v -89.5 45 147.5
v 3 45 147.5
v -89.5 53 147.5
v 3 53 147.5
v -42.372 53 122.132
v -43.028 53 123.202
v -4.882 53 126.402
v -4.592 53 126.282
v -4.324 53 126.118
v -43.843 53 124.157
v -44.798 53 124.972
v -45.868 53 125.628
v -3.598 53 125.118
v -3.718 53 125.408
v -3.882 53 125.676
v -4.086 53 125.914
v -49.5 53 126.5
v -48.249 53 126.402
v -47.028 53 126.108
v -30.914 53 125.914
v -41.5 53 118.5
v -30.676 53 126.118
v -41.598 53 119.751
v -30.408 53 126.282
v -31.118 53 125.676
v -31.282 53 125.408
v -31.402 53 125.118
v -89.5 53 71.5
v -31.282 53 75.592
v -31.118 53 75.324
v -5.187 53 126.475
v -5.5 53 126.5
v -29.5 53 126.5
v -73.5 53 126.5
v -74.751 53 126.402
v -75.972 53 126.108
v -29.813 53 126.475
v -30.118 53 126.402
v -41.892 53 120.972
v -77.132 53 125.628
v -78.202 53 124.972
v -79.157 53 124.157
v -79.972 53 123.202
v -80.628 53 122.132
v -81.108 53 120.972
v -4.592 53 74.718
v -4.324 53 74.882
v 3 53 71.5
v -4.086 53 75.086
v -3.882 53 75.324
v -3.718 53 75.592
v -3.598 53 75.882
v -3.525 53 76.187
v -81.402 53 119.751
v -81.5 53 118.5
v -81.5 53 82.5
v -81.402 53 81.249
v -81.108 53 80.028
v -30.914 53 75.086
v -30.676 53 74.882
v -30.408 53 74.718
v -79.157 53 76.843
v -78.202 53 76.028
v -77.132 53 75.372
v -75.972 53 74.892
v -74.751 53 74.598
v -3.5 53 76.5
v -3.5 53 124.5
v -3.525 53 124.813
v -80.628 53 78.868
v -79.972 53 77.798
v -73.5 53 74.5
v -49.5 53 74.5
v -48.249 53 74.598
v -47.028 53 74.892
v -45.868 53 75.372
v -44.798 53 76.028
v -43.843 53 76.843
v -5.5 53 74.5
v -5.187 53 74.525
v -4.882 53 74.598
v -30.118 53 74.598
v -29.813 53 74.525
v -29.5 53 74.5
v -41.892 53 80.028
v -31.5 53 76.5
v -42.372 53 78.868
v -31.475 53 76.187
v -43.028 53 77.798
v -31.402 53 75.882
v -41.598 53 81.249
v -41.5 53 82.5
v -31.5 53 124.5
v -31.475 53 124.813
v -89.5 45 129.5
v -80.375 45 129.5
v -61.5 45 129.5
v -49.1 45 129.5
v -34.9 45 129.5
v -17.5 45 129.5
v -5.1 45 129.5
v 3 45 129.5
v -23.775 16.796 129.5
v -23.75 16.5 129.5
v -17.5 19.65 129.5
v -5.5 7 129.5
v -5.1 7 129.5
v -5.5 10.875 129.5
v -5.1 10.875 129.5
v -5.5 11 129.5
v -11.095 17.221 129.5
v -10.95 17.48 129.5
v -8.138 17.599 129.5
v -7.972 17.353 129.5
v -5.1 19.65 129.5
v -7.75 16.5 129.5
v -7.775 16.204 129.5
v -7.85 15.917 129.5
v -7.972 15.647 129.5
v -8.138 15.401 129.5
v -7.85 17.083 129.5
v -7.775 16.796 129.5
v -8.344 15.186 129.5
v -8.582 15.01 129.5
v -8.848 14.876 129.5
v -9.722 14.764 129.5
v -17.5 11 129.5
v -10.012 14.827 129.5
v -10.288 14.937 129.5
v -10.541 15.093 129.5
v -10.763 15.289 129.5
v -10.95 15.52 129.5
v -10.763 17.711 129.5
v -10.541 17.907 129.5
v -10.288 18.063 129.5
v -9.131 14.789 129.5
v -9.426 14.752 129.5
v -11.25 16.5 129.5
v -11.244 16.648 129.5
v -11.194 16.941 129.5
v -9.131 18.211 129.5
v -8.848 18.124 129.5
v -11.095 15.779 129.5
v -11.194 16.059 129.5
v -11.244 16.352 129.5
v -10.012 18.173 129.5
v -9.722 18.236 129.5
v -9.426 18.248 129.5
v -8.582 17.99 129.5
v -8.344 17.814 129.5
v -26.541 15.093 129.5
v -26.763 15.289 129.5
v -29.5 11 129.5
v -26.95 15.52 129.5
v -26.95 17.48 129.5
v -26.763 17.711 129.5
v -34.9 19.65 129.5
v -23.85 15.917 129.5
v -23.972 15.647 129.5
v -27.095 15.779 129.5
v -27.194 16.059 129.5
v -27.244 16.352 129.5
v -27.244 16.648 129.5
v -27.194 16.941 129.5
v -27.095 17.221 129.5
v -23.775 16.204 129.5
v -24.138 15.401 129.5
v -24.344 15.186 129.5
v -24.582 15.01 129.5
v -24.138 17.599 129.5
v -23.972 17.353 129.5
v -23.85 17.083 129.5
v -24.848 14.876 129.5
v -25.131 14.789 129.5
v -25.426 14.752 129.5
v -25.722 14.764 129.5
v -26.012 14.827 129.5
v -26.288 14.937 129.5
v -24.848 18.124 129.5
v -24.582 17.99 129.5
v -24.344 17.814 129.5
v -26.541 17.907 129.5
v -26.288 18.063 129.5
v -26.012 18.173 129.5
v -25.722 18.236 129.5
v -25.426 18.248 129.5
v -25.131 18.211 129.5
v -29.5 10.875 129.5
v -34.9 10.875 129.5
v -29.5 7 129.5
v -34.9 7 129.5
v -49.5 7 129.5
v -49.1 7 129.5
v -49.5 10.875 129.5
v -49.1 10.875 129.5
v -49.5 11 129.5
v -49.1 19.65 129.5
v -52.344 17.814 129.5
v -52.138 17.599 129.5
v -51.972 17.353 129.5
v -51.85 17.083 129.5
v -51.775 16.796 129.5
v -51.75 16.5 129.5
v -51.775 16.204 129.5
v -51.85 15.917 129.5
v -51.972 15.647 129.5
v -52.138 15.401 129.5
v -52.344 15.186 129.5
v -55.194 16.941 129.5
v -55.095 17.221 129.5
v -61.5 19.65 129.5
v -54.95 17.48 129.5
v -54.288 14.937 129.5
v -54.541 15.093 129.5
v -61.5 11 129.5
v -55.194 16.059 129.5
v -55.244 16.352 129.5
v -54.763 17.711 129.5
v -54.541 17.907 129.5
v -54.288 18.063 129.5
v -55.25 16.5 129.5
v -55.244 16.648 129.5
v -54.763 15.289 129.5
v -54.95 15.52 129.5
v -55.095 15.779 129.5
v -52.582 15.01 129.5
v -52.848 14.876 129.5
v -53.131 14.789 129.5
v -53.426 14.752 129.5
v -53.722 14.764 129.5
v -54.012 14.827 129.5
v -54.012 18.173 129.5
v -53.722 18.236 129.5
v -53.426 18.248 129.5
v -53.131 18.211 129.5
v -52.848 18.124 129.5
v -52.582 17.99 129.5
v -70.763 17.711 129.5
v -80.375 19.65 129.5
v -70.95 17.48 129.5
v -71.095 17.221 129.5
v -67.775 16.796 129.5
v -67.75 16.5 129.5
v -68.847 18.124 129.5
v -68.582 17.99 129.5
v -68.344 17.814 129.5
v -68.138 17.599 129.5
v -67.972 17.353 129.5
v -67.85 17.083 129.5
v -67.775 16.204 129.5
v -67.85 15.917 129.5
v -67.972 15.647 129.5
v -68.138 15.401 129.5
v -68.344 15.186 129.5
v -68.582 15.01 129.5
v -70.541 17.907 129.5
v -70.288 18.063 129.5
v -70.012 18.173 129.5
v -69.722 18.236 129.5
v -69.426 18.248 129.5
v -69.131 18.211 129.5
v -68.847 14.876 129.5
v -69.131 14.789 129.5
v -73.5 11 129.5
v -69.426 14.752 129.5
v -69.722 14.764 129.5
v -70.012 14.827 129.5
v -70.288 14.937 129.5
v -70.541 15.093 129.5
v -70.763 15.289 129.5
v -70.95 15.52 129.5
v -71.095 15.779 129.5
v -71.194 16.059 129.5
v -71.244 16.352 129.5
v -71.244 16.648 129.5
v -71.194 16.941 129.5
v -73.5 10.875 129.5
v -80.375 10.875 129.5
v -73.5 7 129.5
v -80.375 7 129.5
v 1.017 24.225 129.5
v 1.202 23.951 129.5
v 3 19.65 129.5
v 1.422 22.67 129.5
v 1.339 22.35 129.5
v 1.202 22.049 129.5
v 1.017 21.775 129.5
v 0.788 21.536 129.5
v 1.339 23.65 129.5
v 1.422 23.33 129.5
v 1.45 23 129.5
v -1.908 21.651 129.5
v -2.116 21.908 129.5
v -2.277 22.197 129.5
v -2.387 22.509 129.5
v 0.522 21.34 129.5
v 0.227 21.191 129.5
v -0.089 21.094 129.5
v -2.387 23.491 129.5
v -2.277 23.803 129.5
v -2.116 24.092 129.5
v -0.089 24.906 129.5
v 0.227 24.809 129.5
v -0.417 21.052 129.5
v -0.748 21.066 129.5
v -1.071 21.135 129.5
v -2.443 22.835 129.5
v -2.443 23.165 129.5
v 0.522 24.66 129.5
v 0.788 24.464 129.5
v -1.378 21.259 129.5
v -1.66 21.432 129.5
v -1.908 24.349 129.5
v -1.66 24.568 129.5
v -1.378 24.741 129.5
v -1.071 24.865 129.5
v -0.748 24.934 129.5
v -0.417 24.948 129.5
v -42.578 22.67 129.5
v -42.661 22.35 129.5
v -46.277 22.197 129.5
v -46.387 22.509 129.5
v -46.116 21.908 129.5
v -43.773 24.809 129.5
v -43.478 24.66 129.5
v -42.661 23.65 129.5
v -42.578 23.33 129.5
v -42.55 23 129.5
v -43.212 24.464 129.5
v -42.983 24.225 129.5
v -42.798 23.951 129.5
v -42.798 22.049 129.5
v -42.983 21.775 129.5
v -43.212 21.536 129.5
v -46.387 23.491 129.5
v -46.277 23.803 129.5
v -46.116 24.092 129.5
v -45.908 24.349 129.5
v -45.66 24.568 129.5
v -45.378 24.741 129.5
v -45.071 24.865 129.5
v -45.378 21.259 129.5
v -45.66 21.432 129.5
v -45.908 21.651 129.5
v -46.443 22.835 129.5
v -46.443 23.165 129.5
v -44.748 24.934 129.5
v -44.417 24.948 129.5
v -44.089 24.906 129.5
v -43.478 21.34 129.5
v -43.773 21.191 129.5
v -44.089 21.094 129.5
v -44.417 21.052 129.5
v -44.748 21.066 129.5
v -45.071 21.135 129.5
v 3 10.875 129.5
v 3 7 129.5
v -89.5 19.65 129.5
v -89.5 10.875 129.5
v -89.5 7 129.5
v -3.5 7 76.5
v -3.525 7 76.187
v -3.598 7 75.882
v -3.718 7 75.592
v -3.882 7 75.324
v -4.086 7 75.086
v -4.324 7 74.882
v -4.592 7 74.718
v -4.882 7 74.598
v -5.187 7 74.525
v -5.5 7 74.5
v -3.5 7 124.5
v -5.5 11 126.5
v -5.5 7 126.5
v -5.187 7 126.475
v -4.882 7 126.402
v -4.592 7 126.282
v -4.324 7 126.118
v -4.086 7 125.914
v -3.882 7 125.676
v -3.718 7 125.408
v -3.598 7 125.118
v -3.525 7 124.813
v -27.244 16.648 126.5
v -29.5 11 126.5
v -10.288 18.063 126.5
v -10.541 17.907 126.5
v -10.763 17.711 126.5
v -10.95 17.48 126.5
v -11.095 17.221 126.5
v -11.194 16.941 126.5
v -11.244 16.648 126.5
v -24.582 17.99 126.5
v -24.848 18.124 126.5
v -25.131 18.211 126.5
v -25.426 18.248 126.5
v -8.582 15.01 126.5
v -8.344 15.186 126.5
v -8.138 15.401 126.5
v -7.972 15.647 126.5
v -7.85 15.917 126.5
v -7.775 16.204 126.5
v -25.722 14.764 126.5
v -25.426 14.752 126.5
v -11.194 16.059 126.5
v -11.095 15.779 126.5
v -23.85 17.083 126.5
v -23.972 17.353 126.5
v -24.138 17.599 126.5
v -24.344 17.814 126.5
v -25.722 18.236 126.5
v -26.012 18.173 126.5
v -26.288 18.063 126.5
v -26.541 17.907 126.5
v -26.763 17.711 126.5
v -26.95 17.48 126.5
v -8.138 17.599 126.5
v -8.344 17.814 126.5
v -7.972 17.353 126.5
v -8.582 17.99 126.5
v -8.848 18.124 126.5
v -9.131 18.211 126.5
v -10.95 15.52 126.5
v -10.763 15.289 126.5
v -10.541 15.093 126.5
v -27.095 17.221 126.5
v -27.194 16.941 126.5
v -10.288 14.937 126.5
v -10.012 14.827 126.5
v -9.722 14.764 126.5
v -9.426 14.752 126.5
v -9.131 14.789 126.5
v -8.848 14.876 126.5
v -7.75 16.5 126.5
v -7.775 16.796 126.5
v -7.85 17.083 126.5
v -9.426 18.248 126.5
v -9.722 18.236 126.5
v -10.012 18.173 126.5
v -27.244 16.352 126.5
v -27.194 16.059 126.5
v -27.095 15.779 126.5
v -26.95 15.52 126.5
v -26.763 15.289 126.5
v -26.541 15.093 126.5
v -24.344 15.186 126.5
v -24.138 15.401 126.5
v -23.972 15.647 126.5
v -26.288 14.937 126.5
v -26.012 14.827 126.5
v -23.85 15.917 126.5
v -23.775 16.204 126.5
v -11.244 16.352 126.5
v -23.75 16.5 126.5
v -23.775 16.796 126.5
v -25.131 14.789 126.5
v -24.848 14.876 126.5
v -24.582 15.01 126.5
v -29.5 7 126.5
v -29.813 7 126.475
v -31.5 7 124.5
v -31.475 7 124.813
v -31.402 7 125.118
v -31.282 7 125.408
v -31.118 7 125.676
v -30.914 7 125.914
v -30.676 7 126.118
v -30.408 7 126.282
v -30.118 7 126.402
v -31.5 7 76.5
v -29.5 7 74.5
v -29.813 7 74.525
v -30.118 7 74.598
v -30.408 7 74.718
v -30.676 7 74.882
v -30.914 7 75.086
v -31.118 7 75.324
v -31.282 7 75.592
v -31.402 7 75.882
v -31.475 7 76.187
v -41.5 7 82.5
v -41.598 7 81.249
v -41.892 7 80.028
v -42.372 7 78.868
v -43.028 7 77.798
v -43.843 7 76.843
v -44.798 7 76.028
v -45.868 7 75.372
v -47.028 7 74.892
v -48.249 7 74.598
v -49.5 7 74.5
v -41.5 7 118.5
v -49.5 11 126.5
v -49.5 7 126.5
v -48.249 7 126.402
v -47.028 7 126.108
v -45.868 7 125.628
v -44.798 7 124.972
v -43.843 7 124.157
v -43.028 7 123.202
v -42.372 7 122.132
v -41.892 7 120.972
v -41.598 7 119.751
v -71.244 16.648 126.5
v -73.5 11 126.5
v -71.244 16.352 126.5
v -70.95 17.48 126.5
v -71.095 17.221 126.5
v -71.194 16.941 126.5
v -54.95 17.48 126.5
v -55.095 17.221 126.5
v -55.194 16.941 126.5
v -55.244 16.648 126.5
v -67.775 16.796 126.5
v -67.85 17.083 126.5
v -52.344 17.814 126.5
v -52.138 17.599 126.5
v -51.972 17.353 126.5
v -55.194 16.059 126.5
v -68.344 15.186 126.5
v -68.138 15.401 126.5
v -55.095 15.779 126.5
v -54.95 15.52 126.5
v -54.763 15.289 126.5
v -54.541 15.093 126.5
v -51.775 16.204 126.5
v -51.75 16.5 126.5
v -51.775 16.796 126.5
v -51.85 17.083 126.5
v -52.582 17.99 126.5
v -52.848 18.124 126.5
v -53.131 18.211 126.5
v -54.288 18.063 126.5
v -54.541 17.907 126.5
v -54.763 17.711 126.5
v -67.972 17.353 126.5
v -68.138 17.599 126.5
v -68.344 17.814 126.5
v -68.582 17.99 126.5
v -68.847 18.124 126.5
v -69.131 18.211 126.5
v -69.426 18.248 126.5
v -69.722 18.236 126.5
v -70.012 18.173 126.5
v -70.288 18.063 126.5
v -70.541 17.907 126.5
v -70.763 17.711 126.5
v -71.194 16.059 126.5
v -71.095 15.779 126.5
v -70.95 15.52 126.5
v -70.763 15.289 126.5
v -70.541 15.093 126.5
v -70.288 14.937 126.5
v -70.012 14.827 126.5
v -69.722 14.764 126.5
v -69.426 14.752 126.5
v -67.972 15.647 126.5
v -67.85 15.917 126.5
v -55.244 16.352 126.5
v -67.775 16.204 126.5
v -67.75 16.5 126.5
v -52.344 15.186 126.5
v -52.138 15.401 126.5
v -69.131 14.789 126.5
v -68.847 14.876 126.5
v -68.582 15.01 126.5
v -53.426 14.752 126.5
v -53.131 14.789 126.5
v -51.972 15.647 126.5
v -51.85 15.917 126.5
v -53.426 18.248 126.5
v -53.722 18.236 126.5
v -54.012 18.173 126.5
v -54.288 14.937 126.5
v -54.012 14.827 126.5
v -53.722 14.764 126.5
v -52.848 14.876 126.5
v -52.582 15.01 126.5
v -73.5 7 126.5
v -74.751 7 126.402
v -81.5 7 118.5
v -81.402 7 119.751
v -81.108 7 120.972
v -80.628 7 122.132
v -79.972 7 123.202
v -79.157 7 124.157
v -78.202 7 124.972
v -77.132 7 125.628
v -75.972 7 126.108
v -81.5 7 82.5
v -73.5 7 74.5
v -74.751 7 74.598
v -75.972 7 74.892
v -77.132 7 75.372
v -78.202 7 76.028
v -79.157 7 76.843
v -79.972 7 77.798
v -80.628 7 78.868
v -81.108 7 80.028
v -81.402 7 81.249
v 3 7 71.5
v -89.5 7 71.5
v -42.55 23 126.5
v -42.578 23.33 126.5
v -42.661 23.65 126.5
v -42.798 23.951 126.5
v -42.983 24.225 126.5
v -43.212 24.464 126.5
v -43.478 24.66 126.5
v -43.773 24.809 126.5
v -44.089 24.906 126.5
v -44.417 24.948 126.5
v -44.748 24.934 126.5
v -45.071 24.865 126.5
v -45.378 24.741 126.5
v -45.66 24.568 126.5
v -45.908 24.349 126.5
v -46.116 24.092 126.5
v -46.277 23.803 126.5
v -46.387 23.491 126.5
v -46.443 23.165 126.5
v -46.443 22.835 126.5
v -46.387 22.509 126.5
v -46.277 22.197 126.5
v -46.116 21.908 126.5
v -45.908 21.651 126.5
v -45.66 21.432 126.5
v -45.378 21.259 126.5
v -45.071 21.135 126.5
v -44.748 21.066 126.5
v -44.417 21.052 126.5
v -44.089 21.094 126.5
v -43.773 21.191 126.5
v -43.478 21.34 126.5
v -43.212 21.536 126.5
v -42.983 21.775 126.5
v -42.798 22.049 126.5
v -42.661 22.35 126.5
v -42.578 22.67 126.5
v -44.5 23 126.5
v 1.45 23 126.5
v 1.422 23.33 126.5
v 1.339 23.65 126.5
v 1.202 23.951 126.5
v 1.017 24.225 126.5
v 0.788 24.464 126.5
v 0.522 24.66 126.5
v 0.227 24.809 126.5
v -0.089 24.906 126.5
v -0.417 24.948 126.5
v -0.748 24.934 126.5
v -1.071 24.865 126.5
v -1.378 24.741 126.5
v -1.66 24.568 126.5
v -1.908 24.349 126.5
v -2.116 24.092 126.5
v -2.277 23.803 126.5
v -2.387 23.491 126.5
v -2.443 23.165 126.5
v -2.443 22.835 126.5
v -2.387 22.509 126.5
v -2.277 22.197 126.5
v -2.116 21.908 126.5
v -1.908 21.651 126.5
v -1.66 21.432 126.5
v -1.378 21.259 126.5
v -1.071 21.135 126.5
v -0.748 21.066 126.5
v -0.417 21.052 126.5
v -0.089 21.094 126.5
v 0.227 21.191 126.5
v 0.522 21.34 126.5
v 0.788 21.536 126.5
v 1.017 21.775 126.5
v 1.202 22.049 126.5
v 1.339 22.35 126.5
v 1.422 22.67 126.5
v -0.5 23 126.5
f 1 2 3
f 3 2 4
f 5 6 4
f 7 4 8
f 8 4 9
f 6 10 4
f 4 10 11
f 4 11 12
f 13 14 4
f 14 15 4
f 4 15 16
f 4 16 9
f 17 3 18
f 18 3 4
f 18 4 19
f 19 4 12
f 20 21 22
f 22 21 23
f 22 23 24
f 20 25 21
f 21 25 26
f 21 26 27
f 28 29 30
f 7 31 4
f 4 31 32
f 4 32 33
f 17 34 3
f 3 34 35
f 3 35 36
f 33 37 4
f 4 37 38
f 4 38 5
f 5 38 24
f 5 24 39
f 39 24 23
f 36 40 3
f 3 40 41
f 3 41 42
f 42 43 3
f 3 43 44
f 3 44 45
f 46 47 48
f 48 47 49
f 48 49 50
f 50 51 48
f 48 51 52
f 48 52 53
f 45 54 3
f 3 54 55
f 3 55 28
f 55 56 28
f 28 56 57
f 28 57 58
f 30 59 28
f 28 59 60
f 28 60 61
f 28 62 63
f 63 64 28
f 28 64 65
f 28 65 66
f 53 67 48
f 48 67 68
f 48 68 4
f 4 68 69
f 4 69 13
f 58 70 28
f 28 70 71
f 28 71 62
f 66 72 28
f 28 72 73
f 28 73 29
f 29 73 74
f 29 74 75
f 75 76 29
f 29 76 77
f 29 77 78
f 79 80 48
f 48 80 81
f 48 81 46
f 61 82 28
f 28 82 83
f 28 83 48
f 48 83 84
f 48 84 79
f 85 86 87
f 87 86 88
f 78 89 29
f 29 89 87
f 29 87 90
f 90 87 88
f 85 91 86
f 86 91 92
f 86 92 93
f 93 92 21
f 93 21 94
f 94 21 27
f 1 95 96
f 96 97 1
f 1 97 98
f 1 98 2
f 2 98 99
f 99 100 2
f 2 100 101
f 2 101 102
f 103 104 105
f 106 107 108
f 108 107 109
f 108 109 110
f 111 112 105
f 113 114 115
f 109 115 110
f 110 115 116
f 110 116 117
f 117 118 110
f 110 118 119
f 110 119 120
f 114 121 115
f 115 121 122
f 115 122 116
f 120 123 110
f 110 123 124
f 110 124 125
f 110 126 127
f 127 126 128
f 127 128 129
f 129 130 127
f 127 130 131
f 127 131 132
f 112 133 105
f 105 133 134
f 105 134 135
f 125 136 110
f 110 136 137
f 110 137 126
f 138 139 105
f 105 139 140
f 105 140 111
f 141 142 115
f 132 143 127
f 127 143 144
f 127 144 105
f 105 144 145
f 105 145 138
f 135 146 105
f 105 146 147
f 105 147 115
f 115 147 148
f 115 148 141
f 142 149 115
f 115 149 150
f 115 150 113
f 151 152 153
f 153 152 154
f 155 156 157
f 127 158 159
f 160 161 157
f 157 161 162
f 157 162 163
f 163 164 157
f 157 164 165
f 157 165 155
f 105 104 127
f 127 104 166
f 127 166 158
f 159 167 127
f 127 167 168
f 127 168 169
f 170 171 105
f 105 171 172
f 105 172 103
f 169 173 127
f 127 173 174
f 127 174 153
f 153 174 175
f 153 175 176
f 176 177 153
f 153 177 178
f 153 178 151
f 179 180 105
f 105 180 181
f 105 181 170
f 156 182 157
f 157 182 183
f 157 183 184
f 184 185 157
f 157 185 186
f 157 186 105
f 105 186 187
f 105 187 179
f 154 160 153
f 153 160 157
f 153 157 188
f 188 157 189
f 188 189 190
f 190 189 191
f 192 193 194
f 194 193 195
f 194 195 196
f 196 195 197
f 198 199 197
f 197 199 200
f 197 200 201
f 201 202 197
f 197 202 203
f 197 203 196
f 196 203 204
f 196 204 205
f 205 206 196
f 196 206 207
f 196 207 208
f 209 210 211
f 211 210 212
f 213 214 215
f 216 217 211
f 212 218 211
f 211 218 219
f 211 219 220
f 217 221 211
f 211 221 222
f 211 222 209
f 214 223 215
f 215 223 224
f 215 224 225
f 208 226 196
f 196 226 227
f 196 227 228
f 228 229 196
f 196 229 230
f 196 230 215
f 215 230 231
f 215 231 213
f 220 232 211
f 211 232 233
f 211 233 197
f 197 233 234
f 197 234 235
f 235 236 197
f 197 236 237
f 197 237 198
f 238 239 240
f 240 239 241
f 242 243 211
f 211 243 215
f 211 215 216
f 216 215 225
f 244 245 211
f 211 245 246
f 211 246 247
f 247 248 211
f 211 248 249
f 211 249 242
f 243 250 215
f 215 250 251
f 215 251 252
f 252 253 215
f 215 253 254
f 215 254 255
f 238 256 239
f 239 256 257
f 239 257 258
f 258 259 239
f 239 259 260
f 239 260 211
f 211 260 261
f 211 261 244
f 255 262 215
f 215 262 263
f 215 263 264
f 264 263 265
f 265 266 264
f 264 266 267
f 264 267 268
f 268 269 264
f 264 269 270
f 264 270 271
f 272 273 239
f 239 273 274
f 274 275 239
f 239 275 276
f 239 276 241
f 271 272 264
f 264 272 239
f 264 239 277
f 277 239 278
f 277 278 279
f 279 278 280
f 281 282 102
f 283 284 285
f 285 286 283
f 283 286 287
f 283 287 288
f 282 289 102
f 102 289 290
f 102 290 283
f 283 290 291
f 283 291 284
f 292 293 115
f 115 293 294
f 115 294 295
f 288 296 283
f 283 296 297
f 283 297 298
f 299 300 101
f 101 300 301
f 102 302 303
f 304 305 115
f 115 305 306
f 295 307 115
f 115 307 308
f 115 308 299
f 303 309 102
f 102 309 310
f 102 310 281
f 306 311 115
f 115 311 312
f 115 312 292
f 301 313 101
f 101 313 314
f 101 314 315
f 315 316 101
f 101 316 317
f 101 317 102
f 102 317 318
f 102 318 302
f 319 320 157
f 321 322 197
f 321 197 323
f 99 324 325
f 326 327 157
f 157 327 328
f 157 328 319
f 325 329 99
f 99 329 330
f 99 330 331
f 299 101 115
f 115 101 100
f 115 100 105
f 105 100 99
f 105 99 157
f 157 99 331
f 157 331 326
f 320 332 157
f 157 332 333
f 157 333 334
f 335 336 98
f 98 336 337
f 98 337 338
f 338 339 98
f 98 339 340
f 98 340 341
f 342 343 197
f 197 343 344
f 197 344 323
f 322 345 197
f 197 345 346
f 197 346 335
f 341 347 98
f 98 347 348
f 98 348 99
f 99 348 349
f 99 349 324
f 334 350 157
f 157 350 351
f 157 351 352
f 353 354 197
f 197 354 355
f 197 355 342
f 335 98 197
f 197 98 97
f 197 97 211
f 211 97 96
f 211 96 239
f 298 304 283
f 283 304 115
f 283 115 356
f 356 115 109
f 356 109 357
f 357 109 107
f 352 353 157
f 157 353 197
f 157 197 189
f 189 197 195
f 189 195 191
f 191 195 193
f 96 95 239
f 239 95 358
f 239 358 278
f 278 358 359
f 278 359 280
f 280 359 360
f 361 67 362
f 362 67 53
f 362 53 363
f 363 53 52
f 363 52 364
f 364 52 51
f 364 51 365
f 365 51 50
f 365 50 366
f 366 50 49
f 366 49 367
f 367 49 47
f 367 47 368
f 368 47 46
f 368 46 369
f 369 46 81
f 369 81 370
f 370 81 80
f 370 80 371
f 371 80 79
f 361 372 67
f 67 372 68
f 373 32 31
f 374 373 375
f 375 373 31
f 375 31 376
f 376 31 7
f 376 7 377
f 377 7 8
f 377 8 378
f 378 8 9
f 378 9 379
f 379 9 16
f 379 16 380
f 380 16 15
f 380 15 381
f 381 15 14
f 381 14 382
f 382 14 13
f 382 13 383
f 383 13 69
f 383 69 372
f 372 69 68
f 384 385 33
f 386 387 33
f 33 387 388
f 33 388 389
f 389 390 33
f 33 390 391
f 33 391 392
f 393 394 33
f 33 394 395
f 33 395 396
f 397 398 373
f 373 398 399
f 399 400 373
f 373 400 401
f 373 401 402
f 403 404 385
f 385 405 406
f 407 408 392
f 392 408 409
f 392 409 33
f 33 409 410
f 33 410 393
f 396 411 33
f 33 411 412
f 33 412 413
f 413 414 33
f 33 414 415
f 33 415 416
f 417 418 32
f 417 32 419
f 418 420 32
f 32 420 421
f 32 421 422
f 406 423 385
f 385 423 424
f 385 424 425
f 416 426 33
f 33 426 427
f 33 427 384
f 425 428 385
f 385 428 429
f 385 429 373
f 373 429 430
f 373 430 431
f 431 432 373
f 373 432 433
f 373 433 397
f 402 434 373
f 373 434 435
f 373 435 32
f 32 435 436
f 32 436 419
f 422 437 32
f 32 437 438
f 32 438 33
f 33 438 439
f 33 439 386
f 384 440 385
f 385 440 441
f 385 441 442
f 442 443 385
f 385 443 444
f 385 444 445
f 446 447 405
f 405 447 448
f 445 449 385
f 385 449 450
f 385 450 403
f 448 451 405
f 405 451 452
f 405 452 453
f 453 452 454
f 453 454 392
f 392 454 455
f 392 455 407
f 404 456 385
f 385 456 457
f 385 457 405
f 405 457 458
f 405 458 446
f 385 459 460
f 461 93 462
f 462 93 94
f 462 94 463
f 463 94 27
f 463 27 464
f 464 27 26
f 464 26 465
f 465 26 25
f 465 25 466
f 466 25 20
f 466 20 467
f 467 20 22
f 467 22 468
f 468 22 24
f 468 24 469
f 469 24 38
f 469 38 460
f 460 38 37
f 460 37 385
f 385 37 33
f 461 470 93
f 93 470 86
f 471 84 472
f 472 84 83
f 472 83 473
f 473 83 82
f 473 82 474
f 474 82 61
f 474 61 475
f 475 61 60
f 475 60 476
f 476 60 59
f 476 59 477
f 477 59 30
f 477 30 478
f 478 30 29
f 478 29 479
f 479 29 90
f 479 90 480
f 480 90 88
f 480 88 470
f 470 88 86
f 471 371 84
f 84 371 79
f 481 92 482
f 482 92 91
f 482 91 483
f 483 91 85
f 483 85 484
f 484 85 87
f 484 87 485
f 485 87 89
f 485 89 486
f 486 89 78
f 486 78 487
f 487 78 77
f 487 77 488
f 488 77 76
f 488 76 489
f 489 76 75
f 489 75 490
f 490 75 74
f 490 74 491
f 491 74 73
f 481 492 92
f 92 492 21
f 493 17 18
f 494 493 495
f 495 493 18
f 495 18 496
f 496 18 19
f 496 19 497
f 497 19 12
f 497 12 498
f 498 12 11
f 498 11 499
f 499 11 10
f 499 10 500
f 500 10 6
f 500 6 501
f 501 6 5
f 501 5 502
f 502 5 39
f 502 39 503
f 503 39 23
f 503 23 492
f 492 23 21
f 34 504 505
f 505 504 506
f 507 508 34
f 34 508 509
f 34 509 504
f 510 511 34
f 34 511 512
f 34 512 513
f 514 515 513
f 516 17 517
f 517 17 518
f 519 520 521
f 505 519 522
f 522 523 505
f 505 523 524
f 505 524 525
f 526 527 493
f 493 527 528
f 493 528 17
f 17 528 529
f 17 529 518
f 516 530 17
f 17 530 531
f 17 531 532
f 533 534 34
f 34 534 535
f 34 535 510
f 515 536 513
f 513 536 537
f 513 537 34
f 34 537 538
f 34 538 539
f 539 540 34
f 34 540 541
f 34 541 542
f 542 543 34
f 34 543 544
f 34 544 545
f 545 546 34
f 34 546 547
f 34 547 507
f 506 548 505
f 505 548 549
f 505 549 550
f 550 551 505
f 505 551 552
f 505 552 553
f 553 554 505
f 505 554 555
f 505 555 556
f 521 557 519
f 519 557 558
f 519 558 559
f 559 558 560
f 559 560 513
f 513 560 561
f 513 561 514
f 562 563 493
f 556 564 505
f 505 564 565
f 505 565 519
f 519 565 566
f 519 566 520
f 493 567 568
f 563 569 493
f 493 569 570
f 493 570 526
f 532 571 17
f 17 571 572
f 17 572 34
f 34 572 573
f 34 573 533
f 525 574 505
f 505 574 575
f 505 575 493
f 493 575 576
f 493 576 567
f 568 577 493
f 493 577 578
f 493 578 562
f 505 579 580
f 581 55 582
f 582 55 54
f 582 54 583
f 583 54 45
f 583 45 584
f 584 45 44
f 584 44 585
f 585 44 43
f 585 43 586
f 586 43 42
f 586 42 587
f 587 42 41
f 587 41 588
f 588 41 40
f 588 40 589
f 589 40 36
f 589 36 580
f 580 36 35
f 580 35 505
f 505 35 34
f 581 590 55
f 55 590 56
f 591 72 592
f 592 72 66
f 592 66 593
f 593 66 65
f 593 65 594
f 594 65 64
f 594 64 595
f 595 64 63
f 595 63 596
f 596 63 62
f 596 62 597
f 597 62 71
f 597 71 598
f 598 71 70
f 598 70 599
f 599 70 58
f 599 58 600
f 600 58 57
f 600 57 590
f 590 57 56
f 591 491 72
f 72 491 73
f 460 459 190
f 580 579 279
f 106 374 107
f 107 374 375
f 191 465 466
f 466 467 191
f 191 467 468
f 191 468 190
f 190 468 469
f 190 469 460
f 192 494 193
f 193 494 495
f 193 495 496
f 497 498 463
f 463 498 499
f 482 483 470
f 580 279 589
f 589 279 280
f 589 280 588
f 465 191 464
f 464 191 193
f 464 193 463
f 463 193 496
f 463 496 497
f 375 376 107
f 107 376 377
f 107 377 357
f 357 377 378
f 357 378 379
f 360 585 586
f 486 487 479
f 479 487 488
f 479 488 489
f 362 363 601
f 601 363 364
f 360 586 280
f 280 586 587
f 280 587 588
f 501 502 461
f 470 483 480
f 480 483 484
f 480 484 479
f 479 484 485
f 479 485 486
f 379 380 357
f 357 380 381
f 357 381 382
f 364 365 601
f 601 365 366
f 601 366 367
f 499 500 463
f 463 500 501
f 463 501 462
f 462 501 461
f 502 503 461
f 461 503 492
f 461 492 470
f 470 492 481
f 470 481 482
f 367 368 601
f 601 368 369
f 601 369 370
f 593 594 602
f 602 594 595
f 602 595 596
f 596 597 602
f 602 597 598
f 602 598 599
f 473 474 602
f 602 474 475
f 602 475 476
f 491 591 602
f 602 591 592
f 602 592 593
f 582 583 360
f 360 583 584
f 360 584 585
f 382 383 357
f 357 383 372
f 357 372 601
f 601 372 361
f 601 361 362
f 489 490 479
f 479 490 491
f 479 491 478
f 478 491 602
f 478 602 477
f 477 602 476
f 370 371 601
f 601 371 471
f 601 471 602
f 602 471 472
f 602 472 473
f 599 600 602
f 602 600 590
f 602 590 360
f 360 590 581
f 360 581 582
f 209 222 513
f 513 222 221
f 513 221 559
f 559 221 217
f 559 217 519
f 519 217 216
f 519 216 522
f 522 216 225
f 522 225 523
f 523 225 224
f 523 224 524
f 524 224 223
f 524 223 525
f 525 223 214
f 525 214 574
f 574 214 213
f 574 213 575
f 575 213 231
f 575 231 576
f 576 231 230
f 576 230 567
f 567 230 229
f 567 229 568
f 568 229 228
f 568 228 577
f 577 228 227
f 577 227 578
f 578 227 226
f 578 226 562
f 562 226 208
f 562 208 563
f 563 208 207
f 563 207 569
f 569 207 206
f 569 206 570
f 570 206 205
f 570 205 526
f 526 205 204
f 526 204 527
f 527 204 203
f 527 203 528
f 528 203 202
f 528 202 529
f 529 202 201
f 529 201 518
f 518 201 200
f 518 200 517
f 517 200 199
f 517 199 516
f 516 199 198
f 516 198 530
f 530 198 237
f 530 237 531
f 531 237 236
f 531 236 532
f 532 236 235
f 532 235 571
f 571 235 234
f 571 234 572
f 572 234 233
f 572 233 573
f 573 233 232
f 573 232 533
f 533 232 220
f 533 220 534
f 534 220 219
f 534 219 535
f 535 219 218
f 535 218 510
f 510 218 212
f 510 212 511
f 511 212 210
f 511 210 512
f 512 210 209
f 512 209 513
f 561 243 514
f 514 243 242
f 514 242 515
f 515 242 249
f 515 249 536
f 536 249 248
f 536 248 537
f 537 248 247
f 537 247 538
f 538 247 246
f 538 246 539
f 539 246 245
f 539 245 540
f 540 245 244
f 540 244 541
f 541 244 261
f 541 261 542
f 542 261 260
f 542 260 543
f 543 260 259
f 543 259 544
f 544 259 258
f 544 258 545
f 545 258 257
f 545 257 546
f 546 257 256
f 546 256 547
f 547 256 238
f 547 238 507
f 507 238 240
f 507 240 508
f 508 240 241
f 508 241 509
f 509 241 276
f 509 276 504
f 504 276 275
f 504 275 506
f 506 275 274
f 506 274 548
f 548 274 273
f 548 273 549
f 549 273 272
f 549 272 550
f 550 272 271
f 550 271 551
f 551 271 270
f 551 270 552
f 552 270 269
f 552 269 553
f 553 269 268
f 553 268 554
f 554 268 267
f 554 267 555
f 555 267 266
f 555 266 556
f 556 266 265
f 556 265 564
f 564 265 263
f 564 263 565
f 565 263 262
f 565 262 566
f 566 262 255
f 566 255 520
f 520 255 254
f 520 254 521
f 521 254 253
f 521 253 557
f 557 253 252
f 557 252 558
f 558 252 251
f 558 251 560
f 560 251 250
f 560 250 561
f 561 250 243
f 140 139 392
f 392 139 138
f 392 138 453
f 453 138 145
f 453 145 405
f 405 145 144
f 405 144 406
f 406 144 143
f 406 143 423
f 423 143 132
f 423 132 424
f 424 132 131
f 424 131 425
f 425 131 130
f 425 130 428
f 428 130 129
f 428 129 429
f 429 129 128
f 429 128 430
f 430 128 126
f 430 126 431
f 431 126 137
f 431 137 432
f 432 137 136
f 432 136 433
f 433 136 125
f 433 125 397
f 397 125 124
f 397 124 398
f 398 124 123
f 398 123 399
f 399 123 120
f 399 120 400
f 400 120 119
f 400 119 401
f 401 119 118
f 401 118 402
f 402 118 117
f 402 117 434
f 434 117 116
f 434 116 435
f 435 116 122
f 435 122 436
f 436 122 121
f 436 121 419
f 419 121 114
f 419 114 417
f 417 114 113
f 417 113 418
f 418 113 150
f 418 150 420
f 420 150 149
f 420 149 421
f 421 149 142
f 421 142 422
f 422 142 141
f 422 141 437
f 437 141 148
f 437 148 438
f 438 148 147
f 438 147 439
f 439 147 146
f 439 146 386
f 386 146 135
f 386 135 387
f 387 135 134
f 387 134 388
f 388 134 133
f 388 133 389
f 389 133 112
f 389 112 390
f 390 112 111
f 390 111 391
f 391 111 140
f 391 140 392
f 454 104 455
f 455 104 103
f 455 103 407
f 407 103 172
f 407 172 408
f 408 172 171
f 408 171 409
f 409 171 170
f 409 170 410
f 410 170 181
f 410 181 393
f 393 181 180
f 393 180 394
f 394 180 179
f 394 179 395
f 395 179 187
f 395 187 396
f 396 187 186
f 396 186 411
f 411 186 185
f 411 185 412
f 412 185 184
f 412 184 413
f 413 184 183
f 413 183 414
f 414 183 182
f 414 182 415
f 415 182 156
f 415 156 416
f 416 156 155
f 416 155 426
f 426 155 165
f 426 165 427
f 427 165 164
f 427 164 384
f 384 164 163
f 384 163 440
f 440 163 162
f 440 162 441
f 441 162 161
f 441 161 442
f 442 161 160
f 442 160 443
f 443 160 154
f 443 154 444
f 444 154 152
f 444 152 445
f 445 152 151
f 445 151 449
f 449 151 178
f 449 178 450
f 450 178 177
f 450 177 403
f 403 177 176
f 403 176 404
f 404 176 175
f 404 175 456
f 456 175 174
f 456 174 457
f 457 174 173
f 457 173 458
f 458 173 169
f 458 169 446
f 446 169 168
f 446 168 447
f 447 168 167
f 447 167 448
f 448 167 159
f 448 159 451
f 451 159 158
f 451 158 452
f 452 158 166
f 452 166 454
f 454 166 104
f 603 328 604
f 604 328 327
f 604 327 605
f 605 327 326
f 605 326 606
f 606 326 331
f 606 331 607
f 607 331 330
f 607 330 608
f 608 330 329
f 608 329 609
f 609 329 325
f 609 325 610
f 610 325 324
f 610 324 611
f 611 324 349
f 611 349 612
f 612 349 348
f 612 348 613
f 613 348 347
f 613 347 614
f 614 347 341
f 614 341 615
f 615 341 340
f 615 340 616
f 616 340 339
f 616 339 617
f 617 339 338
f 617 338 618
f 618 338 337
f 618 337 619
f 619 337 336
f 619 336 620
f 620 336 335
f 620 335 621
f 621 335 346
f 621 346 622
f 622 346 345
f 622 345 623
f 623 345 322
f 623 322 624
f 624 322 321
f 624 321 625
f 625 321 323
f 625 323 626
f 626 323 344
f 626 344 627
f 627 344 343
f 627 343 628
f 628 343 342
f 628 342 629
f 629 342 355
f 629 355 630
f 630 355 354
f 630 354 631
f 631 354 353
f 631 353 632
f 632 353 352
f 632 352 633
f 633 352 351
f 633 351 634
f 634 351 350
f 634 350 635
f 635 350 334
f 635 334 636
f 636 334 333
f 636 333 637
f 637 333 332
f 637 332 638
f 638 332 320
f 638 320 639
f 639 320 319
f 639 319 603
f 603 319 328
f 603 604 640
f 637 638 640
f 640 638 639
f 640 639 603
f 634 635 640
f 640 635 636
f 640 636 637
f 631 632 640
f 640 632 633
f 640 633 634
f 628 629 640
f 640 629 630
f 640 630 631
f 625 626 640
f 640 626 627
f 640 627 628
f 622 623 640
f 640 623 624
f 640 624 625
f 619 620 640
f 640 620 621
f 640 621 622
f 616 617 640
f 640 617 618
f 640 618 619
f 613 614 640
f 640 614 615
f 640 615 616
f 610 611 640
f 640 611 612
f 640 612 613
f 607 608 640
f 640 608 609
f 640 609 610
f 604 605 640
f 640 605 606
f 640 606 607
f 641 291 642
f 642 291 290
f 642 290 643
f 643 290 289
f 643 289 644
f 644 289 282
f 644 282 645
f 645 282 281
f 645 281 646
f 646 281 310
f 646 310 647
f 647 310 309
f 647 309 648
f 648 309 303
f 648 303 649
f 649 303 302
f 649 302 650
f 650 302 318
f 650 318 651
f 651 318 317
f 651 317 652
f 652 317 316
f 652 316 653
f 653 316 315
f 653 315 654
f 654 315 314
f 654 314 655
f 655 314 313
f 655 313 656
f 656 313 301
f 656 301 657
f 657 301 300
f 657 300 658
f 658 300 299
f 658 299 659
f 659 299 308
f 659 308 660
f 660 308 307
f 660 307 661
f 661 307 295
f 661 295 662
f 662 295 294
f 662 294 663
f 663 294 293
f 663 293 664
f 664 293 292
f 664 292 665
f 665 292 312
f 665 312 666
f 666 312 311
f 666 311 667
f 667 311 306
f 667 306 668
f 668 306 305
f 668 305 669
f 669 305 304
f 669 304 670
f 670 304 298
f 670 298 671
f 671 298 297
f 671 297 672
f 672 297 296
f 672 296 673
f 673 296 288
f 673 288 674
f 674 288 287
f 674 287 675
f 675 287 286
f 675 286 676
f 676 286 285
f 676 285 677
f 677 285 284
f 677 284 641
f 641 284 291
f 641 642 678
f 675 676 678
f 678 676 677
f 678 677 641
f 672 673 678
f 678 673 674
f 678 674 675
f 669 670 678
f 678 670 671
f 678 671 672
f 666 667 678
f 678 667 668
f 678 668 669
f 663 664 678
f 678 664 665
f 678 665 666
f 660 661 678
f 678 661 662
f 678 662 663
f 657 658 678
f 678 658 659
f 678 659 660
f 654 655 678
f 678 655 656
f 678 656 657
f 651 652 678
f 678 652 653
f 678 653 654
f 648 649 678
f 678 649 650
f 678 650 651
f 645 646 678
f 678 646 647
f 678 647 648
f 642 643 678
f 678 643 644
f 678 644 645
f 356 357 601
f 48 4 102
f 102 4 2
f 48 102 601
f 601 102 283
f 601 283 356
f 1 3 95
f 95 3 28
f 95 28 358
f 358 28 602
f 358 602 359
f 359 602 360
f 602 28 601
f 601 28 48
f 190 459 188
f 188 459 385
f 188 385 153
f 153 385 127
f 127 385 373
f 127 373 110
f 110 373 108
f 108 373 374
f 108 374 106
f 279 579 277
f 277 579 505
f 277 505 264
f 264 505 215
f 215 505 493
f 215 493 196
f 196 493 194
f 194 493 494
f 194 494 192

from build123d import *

# Parameters (mm, degrees)
SKETCH1_W                  = 405
SKETCH1_H                  = 295
BOSS_EXTRUDE1_DEPTH        = 53
SKETCH3_OUTSIDE_W          = 507.768
SKETCH3_OUTSIDE_H          = 397.768
SKETCH3_OUTSIDE_W_2        = 369
SKETCH3_OUTSIDE_H_2        = 259
CUT_EXTRUDE2_DEPTH         = 45
MINI_BIN_CUTS_DEPTH        = 46
FILLET1_R                  = 8
SKETCH6_W                  = 259
SKETCH6_H                  = 7
CUT_EXTRUDE5_DEPTH         = 418.533531588
SKETCH8_R                  = 1.75
SKETCH8_R_2                = 1.95
HOLES_LIDS_8_9_12_13_DEPTH = 3
SKETCH9_W                  = 113
SKETCH9_H                  = 46
SKETCH9_W_2                = 199.5
CUT_EXTRUDE6_DEPTH         = 362.718467872
SKETCH10_W                 = 219
SKETCH10_H                 = 46
CUT_EXTRUDE7_DEPTH         = 182.993131739
CUT_EXTRUDE8_REACH         = 121.093
SKETCH11_W                 = 24
SKETCH11_H                 = 4


with BuildPart() as part:
    # Sketch1 → Boss-Extrude1 (new body)
    with BuildSketch(Plane(origin=(0, 0, 0), x_dir=(1, 0, 0), z_dir=(0, 1, 0))):
        Rectangle(SKETCH1_W, SKETCH1_H)
    extrude(amount=BOSS_EXTRUDE1_DEPTH)

    # Sketch3 outside → Cut-Extrude2 (cut)
    with BuildSketch(Plane(origin=(0, 0, 0), x_dir=(-1, 0, 0), z_dir=(0, -1, 0))):
        Rectangle(SKETCH3_OUTSIDE_W, SKETCH3_OUTSIDE_H)
        Rectangle(SKETCH3_OUTSIDE_W_2, SKETCH3_OUTSIDE_H_2, mode=Mode.SUBTRACT)
    extrude(amount=-CUT_EXTRUDE2_DEPTH, mode=Mode.SUBTRACT)

    # Sketch2 → Mini bin cuts (cut)
    with BuildSketch(Plane(origin=(0, 53, 0), x_dir=(1, 0, 0), z_dir=(0, 1, 0))):
        with BuildLine():
            Line((-173.5, -126.5), (-105.5, -126.5))
            ThreePointArc((-105.5, -126.5), (-99.843145751, -124.156854249), (-97.5, -118.5))
            Line((-97.5, -118.5), (-97.5, -49.5))
            ThreePointArc((-97.5, -49.5), (-99.843145751, -43.843145751), (-105.5, -41.5))
            Line((-105.5, -41.5), (-173.5, -41.5))
            ThreePointArc((-173.5, -41.5), (-179.156854249, -43.843145751), (-181.5, -49.5))
            Line((-181.5, -49.5), (-181.5, -118.5))
            ThreePointArc((-181.5, -118.5), (-179.156854249, -124.156854249), (-173.5, -126.5))
        make_face()
        with BuildLine():
            Line((-173.5, -31.5), (-105.5, -31.5))
            ThreePointArc((-105.5, -31.5), (-99.843145751, -29.156854249), (-97.5, -23.5))
            Line((-97.5, -23.5), (-97.5, 40.5))
            ThreePointArc((-97.5, 40.5), (-99.843145751, 46.156854249), (-105.5, 48.5))
            Line((-105.5, 48.5), (-173.5, 48.5))
            ThreePointArc((-173.5, 48.5), (-179.156854249, 46.156854249), (-181.5, 40.5))
            Line((-181.5, 40.5), (-181.5, -23.5))
            ThreePointArc((-181.5, -23.5), (-179.156854249, -29.156854249), (-173.5, -31.5))
        make_face()
        with BuildLine():
            Line((-173.5, 126.5), (-105.5, 126.5))
            ThreePointArc((-105.5, 126.5), (-99.843145751, 124.156854249), (-97.5, 118.5))
            Line((-97.5, 118.5), (-97.5, 66.5))
            ThreePointArc((-97.5, 66.5), (-99.843145751, 60.843145751), (-105.5, 58.5))
            Line((-105.5, 58.5), (-173.5, 58.5))
            ThreePointArc((-173.5, 58.5), (-179.156854249, 60.843145751), (-181.5, 66.5))
            Line((-181.5, 66.5), (-181.5, 118.5))
            ThreePointArc((-181.5, 118.5), (-179.156854249, 124.156854249), (-173.5, 126.5))
        make_face()
        with BuildLine():
            Line((173.5, -126.5), (115.5, -126.5))
            ThreePointArc((115.5, -126.5), (109.843145751, -124.156854249), (107.5, -118.5))
            Line((107.5, -118.5), (107.5, 7.5))
            ThreePointArc((107.5, 7.5), (109.843145751, 13.156854249), (115.5, 15.5))
            Line((115.5, 15.5), (173.5, 15.5))
            ThreePointArc((173.5, 15.5), (179.156854249, 13.156854249), (181.5, 7.5))
            Line((181.5, 7.5), (181.5, -118.5))
            ThreePointArc((181.5, -118.5), (179.156854249, -124.156854249), (173.5, -126.5))
        make_face()
        with BuildLine():
            Line((173.5, 126.5), (107.5, 126.5))
            ThreePointArc((107.5, 126.5), (101.843145751, 124.156854249), (99.5, 118.5))
            Line((99.5, 118.5), (99.5, 33.5))
            ThreePointArc((99.5, 33.5), (101.843145751, 27.843145751), (107.5, 25.5))
            Line((107.5, 25.5), (173.5, 25.5))
            ThreePointArc((173.5, 25.5), (179.156854249, 27.843145751), (181.5, 33.5))
            Line((181.5, 33.5), (181.5, 118.5))
            ThreePointArc((181.5, 118.5), (179.156854249, 124.156854249), (173.5, 126.5))
        make_face()
        with BuildLine():
            Line((81.5, 126.5), (20.5, 126.5))
            ThreePointArc((20.5, 126.5), (14.843145751, 124.156854249), (12.5, 118.5))
            Line((12.5, 118.5), (12.5, -7.5))
            ThreePointArc((12.5, -7.5), (14.843145751, -13.156854249), (20.5, -15.5))
            Line((20.5, -15.5), (81.5, -15.5))
            ThreePointArc((81.5, -15.5), (87.156854249, -13.156854249), (89.5, -7.5))
            Line((89.5, -7.5), (89.5, 118.5))
            ThreePointArc((89.5, 118.5), (87.156854249, 124.156854249), (81.5, 126.5))
        make_face()
        with BuildLine():
            Line((-9.5, 126.5), (-31.5, 126.5))
            ThreePointArc((-31.5, 126.5), (-37.156854249, 124.156854249), (-39.5, 118.5))
            Line((-39.5, 118.5), (-39.5, 11.5))
            ThreePointArc((-39.5, 11.5), (-37.156854249, 5.843145751), (-31.5, 3.5))
            Line((-31.5, 3.5), (-9.5, 3.5))
            ThreePointArc((-9.5, 3.5), (-3.843145751, 5.843145751), (-1.5, 11.5))
            Line((-1.5, 11.5), (-1.5, 118.5))
            ThreePointArc((-1.5, 118.5), (-3.843145751, 124.156854249), (-9.5, 126.5))
        make_face()
        with BuildLine():
            Line((-57.5, 126.5), (-79.5, 126.5))
            ThreePointArc((-79.5, 126.5), (-85.156854249, 124.156854249), (-87.5, 118.5))
            Line((-87.5, 118.5), (-87.5, 11.5))
            ThreePointArc((-87.5, 11.5), (-85.156854249, 5.843145751), (-79.5, 3.5))
            Line((-79.5, 3.5), (-57.5, 3.5))
            ThreePointArc((-57.5, 3.5), (-51.843145751, 5.843145751), (-49.5, 11.5))
            Line((-49.5, 11.5), (-49.5, 118.5))
            ThreePointArc((-49.5, 118.5), (-51.843145751, 124.156854249), (-57.5, 126.5))
        make_face()
        with BuildLine():
            Line((-79.5, -15.5), (-55.5, -15.5))
            ThreePointArc((-55.5, -15.5), (-54.085786438, -16.085786438), (-53.5, -17.5))
            Line((-53.5, -17.5), (-53.5, -65.5))
            ThreePointArc((-53.5, -65.5), (-54.085786438, -66.914213562), (-55.5, -67.5))
            Line((-55.5, -67.5), (-79.5, -67.5))
            ThreePointArc((-79.5, -67.5), (-80.914213562, -66.914213562), (-81.5, -65.5))
            Line((-81.5, -65.5), (-81.5, -17.5))
            ThreePointArc((-81.5, -17.5), (-80.914213562, -16.085786438), (-79.5, -15.5))
        make_face()
        with BuildLine():
            Line((-73.5, -126.5), (-49.5, -126.5))
            ThreePointArc((-49.5, -126.5), (-43.843145751, -124.156854249), (-41.5, -118.5))
            Line((-41.5, -118.5), (-41.5, -82.5))
            ThreePointArc((-41.5, -82.5), (-43.843145751, -76.843145751), (-49.5, -74.5))
            Line((-49.5, -74.5), (-73.5, -74.5))
            ThreePointArc((-73.5, -74.5), (-79.156854249, -76.843145751), (-81.5, -82.5))
            Line((-81.5, -82.5), (-81.5, -118.5))
            ThreePointArc((-81.5, -118.5), (-79.156854249, -124.156854249), (-73.5, -126.5))
        make_face()
        with BuildLine():
            Line((-35.5, -15.5), (-11.5, -15.5))
            ThreePointArc((-11.5, -15.5), (-5.843145751, -17.843145751), (-3.5, -23.5))
            Line((-3.5, -23.5), (-3.5, -59.5))
            ThreePointArc((-3.5, -59.5), (-5.843145751, -65.156854249), (-11.5, -67.5))
            Line((-11.5, -67.5), (-35.5, -67.5))
            ThreePointArc((-35.5, -67.5), (-41.156854249, -65.156854249), (-43.5, -59.5))
            Line((-43.5, -59.5), (-43.5, -23.5))
            ThreePointArc((-43.5, -23.5), (-41.156854249, -17.843145751), (-35.5, -15.5))
        make_face()
        with BuildLine():
            Line((-29.5, -74.5), (-5.5, -74.5))
            ThreePointArc((-5.5, -74.5), (-4.085786438, -75.085786438), (-3.5, -76.5))
            Line((-3.5, -76.5), (-3.5, -124.5))
            ThreePointArc((-3.5, -124.5), (-4.085786438, -125.914213562), (-5.5, -126.5))
            Line((-5.5, -126.5), (-29.5, -126.5))
            ThreePointArc((-29.5, -126.5), (-30.914213562, -125.914213562), (-31.5, -124.5))
            Line((-31.5, -124.5), (-31.5, -76.5))
            ThreePointArc((-31.5, -76.5), (-30.914213562, -75.085786438), (-29.5, -74.5))
        make_face()
        with BuildLine():
            Line((89.5, -126.5), (19.5, -126.5))
            ThreePointArc((19.5, -126.5), (13.843145751, -124.156854249), (11.5, -118.5))
            Line((11.5, -118.5), (11.5, -33.5))
            ThreePointArc((11.5, -33.5), (13.843145751, -27.843145751), (19.5, -25.5))
            Line((19.5, -25.5), (89.5, -25.5))
            ThreePointArc((89.5, -25.5), (95.156854249, -27.843145751), (97.5, -33.5))
            Line((97.5, -33.5), (97.5, -118.5))
            ThreePointArc((97.5, -118.5), (95.156854249, -124.156854249), (89.5, -126.5))
        make_face()
    extrude(amount=-MINI_BIN_CUTS_DEPTH, mode=Mode.SUBTRACT)

    # Fillet1
    fillet1_edges = [part.edges().sort_by_distance(p)[0] for p in [
        (184.5, 22.5, 129.5),
        (184.5, 22.5, -129.5),
        (-184.5, 22.5, -129.5),
        (-184.5, 22.5, 129.5),
    ]]
    fillet(fillet1_edges, radius=FILLET1_R)

    # Sketch6 → Cut-Extrude5 (cut, through all)
    with BuildSketch(Plane.ZY.offset(184.5)):
        with Locations((0, 3.5)):
            Rectangle(SKETCH6_W, SKETCH6_H)
    extrude(amount=-CUT_EXTRUDE5_DEPTH, mode=Mode.SUBTRACT)

    # Sketch8 → Holes Lids 8,9,12,13 (cut)
    with BuildSketch(Plane.XY.offset(129.5)):
        with Locations((-69.5, 16.5)):
            Circle(SKETCH8_R)
        with Locations((-25.5, 16.5)):
            Circle(SKETCH8_R)
        with Locations((46.5, 16.5)):
            Circle(SKETCH8_R)
        with Locations((136.5, 16.5)):
            Circle(SKETCH8_R)
        with Locations((152.5, 16.5)):
            Circle(SKETCH8_R)
        with Locations((62.5, 16.5)):
            Circle(SKETCH8_R)
        with Locations((-9.5, 16.5)):
            Circle(SKETCH8_R)
        with Locations((-53.5, 16.5)):
            Circle(SKETCH8_R)
        with Locations((-44.5, 23)):
            Circle(SKETCH8_R_2)
        with Locations((-0.5, 23)):
            Circle(SKETCH8_R_2)
        with Locations((71.5, 23)):
            Circle(SKETCH8_R_2)
        with Locations((161.5, 23)):
            Circle(SKETCH8_R_2)
    extrude(amount=-HOLES_LIDS_8_9_12_13_DEPTH, mode=Mode.SUBTRACT)

    # Sketch9 → Cut-Extrude6 (cut, through all)
    with BuildSketch(Plane.XY.offset(147.5)):
        with Locations((-146, 30)):
            Rectangle(SKETCH9_W, SKETCH9_H)
        with Locations((102.75, 30)):
            Rectangle(SKETCH9_W_2, SKETCH9_H)
    extrude(amount=-CUT_EXTRUDE6_DEPTH, mode=Mode.SUBTRACT)

    # Sketch10 → Cut-Extrude7 (cut, through all)
    with BuildSketch(Plane(origin=(3, 0, 0), x_dir=(0, 0, -1), z_dir=(1, 0, 0))):
        with Locations((38, 30)):
            Rectangle(SKETCH10_W, SKETCH10_H)
    extrude(amount=-CUT_EXTRUDE7_DEPTH, mode=Mode.SUBTRACT)

    # Cut-Extrude8: up to this face of the body (flat: up to its plane)
    cut_extrude8_end = Plane(part.part.faces().sort_by_distance((-61.5, 30.239473231, 126.5))[0])
    # Sketch11 → Cut-Extrude8 (cut, up to the picked face)
    with BuildSketch(Plane.XY.offset(129.5), mode=Mode.PRIVATE) as cut_extrude8_sk1:
        with Locations((-61.5, 9)):
            Rectangle(SKETCH11_W, SKETCH11_H)
    cut_extrude8_tool1 = split(extrude(cut_extrude8_sk1.sketch, amount=-CUT_EXTRUDE8_REACH, mode=Mode.PRIVATE), bisect_by=cut_extrude8_end, keep=Keep.BOTH, mode=Mode.PRIVATE)
    # Sketch11 → Cut-Extrude8 (cut, up to the picked face)
    with BuildSketch(Plane.XY.offset(129.5), mode=Mode.PRIVATE) as cut_extrude8_sk2:
        with Locations((-17.5, 9)):
            Rectangle(SKETCH11_W, SKETCH11_H)
    cut_extrude8_tool2 = split(extrude(cut_extrude8_sk2.sketch, amount=-CUT_EXTRUDE8_REACH, mode=Mode.PRIVATE), bisect_by=cut_extrude8_end, keep=Keep.BOTH, mode=Mode.PRIVATE)
    add(cut_extrude8_tool1.solids().sort_by(Axis((-61.5, 9, 129.5), (0, 0, -1)))[0], mode=Mode.SUBTRACT)
    add(cut_extrude8_tool2.solids().sort_by(Axis((-17.5, 9, 129.5), (0, 0, -1)))[0], mode=Mode.SUBTRACT)


solid = part.part
